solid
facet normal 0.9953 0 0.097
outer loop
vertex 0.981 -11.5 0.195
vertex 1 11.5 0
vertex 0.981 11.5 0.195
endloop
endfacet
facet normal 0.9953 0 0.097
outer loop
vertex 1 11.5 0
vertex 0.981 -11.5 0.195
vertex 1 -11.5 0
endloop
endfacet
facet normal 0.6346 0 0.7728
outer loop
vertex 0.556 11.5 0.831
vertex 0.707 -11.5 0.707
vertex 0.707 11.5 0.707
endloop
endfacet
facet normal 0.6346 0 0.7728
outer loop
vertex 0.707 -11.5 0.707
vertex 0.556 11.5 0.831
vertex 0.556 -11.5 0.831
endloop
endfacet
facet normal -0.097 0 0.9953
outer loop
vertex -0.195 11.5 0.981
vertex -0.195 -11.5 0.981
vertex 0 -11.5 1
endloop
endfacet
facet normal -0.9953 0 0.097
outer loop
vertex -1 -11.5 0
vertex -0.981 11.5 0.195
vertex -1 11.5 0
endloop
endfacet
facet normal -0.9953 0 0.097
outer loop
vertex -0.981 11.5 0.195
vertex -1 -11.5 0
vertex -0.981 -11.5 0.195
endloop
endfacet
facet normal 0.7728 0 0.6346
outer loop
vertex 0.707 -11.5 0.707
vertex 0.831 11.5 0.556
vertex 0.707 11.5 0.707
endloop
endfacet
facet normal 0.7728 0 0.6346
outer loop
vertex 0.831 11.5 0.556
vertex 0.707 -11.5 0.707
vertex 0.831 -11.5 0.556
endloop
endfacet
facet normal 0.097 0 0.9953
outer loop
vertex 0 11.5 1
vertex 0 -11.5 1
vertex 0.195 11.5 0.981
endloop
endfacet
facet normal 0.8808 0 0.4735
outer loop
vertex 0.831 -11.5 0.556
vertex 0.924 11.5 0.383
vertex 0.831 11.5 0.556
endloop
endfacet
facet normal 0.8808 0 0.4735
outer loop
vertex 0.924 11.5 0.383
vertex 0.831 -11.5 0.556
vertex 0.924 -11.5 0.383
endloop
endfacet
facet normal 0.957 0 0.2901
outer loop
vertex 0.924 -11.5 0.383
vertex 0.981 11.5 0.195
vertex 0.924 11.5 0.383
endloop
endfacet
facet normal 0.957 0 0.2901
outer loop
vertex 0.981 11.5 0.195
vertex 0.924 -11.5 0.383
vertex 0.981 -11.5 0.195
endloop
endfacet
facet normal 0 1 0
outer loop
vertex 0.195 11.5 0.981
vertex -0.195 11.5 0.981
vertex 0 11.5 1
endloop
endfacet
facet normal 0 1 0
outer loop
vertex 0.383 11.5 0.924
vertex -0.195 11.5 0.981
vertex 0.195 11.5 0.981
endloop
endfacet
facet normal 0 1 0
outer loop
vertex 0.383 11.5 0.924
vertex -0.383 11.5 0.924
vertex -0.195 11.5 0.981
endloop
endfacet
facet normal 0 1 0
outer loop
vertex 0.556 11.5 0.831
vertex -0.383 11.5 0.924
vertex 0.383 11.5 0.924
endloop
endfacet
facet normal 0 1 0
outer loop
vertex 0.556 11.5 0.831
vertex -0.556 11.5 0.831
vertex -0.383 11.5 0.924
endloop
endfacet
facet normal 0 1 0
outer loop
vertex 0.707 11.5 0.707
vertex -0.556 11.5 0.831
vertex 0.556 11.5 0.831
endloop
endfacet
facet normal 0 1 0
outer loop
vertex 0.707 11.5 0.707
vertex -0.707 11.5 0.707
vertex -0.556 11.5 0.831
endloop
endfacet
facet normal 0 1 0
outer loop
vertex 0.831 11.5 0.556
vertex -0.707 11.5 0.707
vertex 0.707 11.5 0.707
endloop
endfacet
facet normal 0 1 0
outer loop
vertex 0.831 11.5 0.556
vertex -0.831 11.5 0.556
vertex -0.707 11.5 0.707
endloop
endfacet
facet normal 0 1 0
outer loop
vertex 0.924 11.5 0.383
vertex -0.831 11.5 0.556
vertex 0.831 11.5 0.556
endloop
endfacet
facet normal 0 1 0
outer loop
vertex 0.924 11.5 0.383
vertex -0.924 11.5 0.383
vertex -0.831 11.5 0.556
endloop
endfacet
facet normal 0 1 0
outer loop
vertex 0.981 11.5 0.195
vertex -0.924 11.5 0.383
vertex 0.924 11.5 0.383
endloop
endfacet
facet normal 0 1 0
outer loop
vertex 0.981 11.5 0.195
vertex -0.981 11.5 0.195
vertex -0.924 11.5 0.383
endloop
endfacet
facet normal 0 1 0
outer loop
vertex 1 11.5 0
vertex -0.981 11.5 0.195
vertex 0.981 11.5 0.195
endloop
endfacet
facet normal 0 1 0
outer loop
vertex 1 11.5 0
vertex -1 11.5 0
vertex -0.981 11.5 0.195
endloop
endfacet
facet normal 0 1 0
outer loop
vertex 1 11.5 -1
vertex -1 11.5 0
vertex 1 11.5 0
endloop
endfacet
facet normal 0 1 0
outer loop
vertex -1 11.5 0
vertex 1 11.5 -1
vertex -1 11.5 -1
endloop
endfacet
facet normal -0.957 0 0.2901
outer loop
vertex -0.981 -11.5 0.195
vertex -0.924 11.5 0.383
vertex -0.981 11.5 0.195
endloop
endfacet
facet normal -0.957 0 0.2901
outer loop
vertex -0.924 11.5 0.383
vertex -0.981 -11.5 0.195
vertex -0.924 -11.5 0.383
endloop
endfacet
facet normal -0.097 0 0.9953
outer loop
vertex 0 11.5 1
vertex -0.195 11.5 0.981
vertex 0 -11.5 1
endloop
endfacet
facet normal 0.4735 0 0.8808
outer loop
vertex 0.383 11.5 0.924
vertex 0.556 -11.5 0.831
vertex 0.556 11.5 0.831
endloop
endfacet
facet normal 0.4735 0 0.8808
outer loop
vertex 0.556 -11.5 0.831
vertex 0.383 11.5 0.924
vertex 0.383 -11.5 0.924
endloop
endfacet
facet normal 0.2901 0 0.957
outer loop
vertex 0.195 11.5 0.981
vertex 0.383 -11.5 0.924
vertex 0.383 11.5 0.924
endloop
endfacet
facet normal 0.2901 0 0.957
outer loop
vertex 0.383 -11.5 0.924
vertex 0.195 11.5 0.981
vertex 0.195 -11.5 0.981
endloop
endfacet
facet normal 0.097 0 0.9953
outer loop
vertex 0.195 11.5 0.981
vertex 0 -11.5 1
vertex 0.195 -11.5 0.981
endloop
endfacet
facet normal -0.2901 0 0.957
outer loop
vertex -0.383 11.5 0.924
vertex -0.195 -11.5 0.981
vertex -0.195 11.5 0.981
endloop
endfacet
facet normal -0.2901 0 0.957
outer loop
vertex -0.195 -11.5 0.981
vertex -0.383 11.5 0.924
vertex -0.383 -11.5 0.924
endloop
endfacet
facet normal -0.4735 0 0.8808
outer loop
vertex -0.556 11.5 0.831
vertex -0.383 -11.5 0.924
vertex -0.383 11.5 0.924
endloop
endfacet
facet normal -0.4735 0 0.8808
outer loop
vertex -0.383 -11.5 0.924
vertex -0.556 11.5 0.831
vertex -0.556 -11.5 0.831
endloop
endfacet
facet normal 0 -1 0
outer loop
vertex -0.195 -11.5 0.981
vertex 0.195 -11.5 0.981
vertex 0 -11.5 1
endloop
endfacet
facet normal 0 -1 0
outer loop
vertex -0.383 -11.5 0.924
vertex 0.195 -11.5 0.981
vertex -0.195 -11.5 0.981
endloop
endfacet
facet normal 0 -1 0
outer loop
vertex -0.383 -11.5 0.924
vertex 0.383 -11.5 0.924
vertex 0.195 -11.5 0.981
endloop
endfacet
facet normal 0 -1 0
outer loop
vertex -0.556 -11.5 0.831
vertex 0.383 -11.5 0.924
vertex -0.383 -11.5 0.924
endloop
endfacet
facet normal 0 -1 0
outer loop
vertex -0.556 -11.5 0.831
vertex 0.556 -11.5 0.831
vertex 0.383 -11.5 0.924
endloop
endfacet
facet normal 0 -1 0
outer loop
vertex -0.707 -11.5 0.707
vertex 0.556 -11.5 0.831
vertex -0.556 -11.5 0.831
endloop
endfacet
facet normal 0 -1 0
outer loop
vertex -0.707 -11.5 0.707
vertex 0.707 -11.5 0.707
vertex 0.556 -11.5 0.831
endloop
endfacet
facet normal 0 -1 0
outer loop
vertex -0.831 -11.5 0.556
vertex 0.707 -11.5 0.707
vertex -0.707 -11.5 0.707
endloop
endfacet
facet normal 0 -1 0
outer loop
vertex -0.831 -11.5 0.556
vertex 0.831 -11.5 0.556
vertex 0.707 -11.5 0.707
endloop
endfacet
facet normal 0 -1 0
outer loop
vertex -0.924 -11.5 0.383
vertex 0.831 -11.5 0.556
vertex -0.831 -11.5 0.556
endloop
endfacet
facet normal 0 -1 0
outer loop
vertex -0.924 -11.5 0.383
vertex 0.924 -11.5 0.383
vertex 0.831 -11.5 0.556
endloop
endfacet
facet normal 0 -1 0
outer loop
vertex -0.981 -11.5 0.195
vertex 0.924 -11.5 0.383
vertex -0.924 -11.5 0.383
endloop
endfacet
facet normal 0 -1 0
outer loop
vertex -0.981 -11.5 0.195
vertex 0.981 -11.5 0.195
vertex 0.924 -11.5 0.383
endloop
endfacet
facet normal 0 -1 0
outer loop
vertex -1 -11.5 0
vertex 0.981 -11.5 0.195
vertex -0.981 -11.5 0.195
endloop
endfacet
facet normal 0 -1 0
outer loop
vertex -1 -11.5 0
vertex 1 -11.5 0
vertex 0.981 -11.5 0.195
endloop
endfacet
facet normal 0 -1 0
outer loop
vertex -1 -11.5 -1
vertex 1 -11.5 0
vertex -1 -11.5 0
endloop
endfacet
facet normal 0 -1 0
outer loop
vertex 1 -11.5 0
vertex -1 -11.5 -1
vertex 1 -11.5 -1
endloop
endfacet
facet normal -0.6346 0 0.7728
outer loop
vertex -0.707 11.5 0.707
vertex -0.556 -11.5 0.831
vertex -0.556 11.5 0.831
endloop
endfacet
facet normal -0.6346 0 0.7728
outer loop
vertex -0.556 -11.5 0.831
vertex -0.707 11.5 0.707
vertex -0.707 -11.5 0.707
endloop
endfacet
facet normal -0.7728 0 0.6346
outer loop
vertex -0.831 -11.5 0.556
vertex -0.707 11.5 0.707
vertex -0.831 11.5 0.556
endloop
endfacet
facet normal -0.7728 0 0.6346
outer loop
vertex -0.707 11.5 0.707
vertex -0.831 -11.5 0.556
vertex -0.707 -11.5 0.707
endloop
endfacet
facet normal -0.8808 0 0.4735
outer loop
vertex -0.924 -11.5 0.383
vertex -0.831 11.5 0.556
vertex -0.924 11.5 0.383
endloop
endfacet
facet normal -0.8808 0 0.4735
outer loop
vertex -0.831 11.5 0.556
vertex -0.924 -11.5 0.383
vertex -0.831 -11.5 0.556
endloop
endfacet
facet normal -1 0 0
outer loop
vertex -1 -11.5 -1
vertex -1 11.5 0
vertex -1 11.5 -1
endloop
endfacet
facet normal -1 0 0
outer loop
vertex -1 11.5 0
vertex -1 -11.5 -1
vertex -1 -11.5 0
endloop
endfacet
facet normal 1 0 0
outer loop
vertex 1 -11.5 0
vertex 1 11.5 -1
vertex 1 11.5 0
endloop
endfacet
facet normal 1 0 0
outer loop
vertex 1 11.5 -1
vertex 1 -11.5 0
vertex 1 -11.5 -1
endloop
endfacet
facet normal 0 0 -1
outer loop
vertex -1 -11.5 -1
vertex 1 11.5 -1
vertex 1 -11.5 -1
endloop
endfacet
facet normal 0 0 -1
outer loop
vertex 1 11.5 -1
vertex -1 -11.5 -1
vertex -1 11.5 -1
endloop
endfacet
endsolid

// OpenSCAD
/*

This is the plastic bar that holds the springs at the bottom of the camera mount (camera_mount.scad)

*/

$fa = 0.2;
$fs = 0.2;

rotate([90,0,0]) cylinder(h=23, r=1,center=true);
translate([0,0,-0.5]) cube([2,23,1], center=true);
